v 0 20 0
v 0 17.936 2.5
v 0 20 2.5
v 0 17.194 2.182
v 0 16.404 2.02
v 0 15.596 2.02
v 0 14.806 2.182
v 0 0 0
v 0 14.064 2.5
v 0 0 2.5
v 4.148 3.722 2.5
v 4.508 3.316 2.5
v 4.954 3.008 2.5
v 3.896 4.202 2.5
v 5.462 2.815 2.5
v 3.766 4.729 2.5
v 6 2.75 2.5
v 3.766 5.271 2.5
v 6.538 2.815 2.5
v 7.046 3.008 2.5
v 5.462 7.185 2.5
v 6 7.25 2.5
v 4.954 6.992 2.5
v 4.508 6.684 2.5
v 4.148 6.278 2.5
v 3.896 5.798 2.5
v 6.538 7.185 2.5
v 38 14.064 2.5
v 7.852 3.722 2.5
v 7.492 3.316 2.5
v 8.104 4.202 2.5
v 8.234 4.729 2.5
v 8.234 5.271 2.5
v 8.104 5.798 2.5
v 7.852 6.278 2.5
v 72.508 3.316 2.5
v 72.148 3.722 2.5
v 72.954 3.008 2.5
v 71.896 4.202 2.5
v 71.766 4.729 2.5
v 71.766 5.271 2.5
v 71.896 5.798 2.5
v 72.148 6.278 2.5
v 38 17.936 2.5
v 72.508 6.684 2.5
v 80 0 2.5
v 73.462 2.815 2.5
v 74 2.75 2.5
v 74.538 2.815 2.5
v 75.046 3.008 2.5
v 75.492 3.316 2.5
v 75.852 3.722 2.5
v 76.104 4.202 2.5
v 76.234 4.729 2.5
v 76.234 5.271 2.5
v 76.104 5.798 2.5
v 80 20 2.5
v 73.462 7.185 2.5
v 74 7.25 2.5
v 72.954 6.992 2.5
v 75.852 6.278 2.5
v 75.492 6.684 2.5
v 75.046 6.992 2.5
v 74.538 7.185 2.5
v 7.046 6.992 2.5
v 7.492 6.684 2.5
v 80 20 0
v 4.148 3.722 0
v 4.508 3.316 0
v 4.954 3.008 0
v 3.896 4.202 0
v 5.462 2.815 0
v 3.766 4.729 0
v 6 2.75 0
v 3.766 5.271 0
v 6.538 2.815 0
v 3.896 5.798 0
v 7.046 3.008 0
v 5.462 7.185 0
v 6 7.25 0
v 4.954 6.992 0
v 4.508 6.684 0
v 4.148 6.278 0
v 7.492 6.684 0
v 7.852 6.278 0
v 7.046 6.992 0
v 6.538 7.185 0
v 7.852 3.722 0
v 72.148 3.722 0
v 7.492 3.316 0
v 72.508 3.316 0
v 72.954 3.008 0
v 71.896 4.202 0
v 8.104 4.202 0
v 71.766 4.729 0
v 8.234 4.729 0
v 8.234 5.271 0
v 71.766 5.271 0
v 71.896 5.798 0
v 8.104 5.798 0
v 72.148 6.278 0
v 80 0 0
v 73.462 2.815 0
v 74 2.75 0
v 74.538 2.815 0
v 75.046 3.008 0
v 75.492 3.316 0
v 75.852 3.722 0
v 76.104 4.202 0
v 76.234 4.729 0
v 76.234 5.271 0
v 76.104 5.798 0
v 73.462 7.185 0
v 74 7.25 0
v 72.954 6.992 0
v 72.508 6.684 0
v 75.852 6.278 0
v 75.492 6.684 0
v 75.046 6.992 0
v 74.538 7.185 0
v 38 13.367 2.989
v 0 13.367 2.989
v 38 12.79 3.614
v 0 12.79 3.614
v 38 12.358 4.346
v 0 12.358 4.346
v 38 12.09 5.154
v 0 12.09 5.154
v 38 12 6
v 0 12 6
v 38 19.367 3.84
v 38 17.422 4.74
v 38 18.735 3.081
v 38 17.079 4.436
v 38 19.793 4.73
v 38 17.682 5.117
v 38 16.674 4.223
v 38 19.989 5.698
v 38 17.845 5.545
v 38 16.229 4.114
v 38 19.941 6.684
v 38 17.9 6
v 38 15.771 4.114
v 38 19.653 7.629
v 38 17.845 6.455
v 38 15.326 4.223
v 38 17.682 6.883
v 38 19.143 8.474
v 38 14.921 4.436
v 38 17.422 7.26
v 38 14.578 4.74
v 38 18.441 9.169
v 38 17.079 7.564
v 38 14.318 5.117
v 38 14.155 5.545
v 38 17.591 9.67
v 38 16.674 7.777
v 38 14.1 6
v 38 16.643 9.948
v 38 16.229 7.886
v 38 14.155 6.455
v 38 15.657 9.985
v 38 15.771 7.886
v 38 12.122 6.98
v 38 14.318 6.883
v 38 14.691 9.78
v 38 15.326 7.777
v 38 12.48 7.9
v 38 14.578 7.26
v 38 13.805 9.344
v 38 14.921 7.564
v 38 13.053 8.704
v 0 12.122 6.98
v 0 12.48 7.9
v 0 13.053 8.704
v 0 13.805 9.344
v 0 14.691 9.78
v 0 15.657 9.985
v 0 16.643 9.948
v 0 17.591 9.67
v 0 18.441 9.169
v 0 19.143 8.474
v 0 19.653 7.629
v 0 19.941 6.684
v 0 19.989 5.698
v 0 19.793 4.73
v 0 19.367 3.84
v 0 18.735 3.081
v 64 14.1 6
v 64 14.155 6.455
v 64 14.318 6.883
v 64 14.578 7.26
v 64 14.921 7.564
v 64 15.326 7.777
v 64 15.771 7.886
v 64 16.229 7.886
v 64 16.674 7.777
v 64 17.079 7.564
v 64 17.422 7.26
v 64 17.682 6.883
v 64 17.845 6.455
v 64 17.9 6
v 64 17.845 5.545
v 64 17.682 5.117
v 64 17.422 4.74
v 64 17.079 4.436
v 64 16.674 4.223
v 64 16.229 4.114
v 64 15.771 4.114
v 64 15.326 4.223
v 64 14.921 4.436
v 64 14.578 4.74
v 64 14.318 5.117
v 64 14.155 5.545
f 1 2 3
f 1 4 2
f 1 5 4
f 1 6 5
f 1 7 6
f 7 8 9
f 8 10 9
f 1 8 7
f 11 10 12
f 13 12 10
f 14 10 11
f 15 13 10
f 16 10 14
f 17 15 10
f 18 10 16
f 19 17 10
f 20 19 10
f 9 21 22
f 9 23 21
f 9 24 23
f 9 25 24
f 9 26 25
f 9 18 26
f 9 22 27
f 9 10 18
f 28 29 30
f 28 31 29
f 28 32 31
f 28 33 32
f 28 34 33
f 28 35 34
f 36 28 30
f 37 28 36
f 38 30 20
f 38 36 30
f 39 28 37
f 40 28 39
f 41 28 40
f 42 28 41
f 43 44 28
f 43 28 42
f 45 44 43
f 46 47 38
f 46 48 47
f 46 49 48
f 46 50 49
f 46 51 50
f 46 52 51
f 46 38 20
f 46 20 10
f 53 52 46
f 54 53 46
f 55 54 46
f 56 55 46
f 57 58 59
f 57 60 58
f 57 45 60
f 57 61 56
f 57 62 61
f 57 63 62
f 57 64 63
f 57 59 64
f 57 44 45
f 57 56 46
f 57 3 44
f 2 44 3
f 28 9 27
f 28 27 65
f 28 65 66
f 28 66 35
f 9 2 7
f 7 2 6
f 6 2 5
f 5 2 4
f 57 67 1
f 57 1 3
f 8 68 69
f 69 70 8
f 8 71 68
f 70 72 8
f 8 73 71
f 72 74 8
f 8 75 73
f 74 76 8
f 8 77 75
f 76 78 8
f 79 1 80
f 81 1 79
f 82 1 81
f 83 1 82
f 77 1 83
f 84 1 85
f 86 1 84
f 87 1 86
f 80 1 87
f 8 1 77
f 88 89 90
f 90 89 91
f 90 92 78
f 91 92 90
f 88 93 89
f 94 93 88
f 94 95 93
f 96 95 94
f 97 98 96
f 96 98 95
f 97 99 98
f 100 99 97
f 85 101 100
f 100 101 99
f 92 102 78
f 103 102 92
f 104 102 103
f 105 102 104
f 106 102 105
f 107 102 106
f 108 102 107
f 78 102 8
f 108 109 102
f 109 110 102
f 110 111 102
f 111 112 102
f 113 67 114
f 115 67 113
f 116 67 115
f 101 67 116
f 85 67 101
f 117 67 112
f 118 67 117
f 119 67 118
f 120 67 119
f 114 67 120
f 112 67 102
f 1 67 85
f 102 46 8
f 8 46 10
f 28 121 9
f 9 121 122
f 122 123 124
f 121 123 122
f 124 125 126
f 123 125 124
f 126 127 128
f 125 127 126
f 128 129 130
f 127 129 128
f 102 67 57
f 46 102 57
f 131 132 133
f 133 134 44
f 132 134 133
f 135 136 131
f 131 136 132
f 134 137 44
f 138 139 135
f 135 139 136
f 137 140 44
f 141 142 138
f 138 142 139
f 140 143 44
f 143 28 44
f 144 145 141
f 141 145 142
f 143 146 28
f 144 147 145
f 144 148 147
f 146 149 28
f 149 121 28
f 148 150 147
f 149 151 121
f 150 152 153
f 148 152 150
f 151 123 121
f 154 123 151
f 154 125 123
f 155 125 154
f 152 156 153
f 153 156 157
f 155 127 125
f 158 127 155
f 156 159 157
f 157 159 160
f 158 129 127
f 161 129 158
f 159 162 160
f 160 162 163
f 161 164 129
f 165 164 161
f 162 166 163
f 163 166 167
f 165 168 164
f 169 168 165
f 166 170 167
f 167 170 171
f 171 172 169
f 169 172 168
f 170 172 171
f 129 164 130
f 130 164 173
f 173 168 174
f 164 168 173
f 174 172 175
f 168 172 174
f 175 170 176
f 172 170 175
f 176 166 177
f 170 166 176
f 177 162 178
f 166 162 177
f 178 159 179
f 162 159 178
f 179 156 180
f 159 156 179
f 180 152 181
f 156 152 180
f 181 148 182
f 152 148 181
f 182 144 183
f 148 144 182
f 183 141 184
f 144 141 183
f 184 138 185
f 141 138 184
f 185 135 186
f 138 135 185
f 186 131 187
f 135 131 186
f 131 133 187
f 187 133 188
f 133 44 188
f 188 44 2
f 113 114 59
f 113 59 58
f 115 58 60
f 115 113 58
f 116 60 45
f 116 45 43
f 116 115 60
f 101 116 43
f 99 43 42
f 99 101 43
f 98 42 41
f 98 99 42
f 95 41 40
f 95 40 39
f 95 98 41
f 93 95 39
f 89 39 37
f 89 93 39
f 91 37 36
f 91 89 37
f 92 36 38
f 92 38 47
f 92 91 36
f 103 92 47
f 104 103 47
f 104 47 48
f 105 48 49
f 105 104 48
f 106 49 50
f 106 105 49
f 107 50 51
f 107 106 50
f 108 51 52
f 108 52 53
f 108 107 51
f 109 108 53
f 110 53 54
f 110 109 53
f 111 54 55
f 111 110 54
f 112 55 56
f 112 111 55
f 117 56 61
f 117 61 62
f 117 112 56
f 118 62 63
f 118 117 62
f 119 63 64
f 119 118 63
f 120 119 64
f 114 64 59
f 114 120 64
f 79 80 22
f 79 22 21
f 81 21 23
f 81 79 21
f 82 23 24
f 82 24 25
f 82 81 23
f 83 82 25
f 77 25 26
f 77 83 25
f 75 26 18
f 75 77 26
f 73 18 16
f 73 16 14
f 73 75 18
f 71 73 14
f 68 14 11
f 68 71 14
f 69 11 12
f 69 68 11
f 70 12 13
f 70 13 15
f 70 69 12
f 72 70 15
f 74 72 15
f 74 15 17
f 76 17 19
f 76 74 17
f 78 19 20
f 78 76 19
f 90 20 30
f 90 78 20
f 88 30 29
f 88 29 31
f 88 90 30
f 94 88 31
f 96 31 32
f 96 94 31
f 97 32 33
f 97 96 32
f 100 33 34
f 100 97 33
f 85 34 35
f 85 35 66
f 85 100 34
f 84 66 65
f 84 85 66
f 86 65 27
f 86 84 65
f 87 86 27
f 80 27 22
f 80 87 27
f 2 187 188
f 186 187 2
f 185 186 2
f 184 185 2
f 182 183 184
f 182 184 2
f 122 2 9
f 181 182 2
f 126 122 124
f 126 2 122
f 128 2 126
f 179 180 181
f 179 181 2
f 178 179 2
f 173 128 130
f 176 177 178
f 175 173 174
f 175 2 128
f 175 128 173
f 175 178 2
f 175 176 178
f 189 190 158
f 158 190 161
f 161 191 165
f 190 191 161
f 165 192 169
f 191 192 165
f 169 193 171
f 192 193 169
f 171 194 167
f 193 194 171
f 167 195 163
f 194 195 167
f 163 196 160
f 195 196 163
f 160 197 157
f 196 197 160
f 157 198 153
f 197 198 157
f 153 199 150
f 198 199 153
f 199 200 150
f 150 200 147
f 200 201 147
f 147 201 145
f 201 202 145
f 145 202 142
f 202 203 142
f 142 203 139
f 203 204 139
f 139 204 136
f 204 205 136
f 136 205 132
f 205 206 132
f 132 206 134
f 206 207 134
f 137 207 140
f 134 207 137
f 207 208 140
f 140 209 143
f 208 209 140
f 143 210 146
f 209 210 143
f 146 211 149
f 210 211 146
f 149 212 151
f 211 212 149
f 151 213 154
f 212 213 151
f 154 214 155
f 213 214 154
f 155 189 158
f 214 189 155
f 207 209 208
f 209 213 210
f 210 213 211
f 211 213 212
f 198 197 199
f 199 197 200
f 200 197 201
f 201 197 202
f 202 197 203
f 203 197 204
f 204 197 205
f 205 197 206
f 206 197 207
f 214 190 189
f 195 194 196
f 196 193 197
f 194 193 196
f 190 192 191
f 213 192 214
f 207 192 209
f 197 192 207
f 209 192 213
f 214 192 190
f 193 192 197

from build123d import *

# Parameters (mm, degrees)
BOX_W             = 80
BOX_H             = 20
BOX_DEPTH         = 2.5
CYLINDER_R        = 4
CYLINDER_DEPTH    = 38
CYLINDER001_R     = 1.9
CYLINDER001_DEPTH = 30
CYLINDER002_R     = 2.25
CYLINDER002_DEPTH = 2.5
CYLINDER003_R     = 2.25
CYLINDER003_DEPTH = 2.5


with BuildPart() as part:
    # Box → Box (join)
    with BuildSketch(Plane.XY):
        with Locations((40, 10)):
            Rectangle(BOX_W, BOX_H)
    extrude(amount=BOX_DEPTH)

    # Cylinder → Cylinder (join)
    with BuildSketch(Plane(origin=(38, 16, 6), x_dir=(0, -1, 0), z_dir=(-1, 0, 0))):
        Circle(CYLINDER_R)
    extrude(amount=CYLINDER_DEPTH)

    # Cylinder001 → Cylinder001 (join)
    with BuildSketch(Plane(origin=(64, 16, 6), x_dir=(0, -1, 0), z_dir=(-1, 0, 0))):
        Circle(CYLINDER001_R)
    extrude(amount=CYLINDER001_DEPTH)

    # Cylinder002 → Cylinder002 (cut)
    with BuildSketch(Plane(origin=(74, 5, 0), x_dir=(0, 1, 0), z_dir=(0, 0, 1))):
        Circle(CYLINDER002_R)
    extrude(amount=CYLINDER002_DEPTH, mode=Mode.SUBTRACT)

    # Cylinder003 → Cylinder003 (cut)
    with BuildSketch(Plane(origin=(6, 5, 0), x_dir=(0, 1, 0), z_dir=(0, 0, 1))):
        Circle(CYLINDER003_R)
    extrude(amount=CYLINDER003_DEPTH, mode=Mode.SUBTRACT)


solid = part.part
